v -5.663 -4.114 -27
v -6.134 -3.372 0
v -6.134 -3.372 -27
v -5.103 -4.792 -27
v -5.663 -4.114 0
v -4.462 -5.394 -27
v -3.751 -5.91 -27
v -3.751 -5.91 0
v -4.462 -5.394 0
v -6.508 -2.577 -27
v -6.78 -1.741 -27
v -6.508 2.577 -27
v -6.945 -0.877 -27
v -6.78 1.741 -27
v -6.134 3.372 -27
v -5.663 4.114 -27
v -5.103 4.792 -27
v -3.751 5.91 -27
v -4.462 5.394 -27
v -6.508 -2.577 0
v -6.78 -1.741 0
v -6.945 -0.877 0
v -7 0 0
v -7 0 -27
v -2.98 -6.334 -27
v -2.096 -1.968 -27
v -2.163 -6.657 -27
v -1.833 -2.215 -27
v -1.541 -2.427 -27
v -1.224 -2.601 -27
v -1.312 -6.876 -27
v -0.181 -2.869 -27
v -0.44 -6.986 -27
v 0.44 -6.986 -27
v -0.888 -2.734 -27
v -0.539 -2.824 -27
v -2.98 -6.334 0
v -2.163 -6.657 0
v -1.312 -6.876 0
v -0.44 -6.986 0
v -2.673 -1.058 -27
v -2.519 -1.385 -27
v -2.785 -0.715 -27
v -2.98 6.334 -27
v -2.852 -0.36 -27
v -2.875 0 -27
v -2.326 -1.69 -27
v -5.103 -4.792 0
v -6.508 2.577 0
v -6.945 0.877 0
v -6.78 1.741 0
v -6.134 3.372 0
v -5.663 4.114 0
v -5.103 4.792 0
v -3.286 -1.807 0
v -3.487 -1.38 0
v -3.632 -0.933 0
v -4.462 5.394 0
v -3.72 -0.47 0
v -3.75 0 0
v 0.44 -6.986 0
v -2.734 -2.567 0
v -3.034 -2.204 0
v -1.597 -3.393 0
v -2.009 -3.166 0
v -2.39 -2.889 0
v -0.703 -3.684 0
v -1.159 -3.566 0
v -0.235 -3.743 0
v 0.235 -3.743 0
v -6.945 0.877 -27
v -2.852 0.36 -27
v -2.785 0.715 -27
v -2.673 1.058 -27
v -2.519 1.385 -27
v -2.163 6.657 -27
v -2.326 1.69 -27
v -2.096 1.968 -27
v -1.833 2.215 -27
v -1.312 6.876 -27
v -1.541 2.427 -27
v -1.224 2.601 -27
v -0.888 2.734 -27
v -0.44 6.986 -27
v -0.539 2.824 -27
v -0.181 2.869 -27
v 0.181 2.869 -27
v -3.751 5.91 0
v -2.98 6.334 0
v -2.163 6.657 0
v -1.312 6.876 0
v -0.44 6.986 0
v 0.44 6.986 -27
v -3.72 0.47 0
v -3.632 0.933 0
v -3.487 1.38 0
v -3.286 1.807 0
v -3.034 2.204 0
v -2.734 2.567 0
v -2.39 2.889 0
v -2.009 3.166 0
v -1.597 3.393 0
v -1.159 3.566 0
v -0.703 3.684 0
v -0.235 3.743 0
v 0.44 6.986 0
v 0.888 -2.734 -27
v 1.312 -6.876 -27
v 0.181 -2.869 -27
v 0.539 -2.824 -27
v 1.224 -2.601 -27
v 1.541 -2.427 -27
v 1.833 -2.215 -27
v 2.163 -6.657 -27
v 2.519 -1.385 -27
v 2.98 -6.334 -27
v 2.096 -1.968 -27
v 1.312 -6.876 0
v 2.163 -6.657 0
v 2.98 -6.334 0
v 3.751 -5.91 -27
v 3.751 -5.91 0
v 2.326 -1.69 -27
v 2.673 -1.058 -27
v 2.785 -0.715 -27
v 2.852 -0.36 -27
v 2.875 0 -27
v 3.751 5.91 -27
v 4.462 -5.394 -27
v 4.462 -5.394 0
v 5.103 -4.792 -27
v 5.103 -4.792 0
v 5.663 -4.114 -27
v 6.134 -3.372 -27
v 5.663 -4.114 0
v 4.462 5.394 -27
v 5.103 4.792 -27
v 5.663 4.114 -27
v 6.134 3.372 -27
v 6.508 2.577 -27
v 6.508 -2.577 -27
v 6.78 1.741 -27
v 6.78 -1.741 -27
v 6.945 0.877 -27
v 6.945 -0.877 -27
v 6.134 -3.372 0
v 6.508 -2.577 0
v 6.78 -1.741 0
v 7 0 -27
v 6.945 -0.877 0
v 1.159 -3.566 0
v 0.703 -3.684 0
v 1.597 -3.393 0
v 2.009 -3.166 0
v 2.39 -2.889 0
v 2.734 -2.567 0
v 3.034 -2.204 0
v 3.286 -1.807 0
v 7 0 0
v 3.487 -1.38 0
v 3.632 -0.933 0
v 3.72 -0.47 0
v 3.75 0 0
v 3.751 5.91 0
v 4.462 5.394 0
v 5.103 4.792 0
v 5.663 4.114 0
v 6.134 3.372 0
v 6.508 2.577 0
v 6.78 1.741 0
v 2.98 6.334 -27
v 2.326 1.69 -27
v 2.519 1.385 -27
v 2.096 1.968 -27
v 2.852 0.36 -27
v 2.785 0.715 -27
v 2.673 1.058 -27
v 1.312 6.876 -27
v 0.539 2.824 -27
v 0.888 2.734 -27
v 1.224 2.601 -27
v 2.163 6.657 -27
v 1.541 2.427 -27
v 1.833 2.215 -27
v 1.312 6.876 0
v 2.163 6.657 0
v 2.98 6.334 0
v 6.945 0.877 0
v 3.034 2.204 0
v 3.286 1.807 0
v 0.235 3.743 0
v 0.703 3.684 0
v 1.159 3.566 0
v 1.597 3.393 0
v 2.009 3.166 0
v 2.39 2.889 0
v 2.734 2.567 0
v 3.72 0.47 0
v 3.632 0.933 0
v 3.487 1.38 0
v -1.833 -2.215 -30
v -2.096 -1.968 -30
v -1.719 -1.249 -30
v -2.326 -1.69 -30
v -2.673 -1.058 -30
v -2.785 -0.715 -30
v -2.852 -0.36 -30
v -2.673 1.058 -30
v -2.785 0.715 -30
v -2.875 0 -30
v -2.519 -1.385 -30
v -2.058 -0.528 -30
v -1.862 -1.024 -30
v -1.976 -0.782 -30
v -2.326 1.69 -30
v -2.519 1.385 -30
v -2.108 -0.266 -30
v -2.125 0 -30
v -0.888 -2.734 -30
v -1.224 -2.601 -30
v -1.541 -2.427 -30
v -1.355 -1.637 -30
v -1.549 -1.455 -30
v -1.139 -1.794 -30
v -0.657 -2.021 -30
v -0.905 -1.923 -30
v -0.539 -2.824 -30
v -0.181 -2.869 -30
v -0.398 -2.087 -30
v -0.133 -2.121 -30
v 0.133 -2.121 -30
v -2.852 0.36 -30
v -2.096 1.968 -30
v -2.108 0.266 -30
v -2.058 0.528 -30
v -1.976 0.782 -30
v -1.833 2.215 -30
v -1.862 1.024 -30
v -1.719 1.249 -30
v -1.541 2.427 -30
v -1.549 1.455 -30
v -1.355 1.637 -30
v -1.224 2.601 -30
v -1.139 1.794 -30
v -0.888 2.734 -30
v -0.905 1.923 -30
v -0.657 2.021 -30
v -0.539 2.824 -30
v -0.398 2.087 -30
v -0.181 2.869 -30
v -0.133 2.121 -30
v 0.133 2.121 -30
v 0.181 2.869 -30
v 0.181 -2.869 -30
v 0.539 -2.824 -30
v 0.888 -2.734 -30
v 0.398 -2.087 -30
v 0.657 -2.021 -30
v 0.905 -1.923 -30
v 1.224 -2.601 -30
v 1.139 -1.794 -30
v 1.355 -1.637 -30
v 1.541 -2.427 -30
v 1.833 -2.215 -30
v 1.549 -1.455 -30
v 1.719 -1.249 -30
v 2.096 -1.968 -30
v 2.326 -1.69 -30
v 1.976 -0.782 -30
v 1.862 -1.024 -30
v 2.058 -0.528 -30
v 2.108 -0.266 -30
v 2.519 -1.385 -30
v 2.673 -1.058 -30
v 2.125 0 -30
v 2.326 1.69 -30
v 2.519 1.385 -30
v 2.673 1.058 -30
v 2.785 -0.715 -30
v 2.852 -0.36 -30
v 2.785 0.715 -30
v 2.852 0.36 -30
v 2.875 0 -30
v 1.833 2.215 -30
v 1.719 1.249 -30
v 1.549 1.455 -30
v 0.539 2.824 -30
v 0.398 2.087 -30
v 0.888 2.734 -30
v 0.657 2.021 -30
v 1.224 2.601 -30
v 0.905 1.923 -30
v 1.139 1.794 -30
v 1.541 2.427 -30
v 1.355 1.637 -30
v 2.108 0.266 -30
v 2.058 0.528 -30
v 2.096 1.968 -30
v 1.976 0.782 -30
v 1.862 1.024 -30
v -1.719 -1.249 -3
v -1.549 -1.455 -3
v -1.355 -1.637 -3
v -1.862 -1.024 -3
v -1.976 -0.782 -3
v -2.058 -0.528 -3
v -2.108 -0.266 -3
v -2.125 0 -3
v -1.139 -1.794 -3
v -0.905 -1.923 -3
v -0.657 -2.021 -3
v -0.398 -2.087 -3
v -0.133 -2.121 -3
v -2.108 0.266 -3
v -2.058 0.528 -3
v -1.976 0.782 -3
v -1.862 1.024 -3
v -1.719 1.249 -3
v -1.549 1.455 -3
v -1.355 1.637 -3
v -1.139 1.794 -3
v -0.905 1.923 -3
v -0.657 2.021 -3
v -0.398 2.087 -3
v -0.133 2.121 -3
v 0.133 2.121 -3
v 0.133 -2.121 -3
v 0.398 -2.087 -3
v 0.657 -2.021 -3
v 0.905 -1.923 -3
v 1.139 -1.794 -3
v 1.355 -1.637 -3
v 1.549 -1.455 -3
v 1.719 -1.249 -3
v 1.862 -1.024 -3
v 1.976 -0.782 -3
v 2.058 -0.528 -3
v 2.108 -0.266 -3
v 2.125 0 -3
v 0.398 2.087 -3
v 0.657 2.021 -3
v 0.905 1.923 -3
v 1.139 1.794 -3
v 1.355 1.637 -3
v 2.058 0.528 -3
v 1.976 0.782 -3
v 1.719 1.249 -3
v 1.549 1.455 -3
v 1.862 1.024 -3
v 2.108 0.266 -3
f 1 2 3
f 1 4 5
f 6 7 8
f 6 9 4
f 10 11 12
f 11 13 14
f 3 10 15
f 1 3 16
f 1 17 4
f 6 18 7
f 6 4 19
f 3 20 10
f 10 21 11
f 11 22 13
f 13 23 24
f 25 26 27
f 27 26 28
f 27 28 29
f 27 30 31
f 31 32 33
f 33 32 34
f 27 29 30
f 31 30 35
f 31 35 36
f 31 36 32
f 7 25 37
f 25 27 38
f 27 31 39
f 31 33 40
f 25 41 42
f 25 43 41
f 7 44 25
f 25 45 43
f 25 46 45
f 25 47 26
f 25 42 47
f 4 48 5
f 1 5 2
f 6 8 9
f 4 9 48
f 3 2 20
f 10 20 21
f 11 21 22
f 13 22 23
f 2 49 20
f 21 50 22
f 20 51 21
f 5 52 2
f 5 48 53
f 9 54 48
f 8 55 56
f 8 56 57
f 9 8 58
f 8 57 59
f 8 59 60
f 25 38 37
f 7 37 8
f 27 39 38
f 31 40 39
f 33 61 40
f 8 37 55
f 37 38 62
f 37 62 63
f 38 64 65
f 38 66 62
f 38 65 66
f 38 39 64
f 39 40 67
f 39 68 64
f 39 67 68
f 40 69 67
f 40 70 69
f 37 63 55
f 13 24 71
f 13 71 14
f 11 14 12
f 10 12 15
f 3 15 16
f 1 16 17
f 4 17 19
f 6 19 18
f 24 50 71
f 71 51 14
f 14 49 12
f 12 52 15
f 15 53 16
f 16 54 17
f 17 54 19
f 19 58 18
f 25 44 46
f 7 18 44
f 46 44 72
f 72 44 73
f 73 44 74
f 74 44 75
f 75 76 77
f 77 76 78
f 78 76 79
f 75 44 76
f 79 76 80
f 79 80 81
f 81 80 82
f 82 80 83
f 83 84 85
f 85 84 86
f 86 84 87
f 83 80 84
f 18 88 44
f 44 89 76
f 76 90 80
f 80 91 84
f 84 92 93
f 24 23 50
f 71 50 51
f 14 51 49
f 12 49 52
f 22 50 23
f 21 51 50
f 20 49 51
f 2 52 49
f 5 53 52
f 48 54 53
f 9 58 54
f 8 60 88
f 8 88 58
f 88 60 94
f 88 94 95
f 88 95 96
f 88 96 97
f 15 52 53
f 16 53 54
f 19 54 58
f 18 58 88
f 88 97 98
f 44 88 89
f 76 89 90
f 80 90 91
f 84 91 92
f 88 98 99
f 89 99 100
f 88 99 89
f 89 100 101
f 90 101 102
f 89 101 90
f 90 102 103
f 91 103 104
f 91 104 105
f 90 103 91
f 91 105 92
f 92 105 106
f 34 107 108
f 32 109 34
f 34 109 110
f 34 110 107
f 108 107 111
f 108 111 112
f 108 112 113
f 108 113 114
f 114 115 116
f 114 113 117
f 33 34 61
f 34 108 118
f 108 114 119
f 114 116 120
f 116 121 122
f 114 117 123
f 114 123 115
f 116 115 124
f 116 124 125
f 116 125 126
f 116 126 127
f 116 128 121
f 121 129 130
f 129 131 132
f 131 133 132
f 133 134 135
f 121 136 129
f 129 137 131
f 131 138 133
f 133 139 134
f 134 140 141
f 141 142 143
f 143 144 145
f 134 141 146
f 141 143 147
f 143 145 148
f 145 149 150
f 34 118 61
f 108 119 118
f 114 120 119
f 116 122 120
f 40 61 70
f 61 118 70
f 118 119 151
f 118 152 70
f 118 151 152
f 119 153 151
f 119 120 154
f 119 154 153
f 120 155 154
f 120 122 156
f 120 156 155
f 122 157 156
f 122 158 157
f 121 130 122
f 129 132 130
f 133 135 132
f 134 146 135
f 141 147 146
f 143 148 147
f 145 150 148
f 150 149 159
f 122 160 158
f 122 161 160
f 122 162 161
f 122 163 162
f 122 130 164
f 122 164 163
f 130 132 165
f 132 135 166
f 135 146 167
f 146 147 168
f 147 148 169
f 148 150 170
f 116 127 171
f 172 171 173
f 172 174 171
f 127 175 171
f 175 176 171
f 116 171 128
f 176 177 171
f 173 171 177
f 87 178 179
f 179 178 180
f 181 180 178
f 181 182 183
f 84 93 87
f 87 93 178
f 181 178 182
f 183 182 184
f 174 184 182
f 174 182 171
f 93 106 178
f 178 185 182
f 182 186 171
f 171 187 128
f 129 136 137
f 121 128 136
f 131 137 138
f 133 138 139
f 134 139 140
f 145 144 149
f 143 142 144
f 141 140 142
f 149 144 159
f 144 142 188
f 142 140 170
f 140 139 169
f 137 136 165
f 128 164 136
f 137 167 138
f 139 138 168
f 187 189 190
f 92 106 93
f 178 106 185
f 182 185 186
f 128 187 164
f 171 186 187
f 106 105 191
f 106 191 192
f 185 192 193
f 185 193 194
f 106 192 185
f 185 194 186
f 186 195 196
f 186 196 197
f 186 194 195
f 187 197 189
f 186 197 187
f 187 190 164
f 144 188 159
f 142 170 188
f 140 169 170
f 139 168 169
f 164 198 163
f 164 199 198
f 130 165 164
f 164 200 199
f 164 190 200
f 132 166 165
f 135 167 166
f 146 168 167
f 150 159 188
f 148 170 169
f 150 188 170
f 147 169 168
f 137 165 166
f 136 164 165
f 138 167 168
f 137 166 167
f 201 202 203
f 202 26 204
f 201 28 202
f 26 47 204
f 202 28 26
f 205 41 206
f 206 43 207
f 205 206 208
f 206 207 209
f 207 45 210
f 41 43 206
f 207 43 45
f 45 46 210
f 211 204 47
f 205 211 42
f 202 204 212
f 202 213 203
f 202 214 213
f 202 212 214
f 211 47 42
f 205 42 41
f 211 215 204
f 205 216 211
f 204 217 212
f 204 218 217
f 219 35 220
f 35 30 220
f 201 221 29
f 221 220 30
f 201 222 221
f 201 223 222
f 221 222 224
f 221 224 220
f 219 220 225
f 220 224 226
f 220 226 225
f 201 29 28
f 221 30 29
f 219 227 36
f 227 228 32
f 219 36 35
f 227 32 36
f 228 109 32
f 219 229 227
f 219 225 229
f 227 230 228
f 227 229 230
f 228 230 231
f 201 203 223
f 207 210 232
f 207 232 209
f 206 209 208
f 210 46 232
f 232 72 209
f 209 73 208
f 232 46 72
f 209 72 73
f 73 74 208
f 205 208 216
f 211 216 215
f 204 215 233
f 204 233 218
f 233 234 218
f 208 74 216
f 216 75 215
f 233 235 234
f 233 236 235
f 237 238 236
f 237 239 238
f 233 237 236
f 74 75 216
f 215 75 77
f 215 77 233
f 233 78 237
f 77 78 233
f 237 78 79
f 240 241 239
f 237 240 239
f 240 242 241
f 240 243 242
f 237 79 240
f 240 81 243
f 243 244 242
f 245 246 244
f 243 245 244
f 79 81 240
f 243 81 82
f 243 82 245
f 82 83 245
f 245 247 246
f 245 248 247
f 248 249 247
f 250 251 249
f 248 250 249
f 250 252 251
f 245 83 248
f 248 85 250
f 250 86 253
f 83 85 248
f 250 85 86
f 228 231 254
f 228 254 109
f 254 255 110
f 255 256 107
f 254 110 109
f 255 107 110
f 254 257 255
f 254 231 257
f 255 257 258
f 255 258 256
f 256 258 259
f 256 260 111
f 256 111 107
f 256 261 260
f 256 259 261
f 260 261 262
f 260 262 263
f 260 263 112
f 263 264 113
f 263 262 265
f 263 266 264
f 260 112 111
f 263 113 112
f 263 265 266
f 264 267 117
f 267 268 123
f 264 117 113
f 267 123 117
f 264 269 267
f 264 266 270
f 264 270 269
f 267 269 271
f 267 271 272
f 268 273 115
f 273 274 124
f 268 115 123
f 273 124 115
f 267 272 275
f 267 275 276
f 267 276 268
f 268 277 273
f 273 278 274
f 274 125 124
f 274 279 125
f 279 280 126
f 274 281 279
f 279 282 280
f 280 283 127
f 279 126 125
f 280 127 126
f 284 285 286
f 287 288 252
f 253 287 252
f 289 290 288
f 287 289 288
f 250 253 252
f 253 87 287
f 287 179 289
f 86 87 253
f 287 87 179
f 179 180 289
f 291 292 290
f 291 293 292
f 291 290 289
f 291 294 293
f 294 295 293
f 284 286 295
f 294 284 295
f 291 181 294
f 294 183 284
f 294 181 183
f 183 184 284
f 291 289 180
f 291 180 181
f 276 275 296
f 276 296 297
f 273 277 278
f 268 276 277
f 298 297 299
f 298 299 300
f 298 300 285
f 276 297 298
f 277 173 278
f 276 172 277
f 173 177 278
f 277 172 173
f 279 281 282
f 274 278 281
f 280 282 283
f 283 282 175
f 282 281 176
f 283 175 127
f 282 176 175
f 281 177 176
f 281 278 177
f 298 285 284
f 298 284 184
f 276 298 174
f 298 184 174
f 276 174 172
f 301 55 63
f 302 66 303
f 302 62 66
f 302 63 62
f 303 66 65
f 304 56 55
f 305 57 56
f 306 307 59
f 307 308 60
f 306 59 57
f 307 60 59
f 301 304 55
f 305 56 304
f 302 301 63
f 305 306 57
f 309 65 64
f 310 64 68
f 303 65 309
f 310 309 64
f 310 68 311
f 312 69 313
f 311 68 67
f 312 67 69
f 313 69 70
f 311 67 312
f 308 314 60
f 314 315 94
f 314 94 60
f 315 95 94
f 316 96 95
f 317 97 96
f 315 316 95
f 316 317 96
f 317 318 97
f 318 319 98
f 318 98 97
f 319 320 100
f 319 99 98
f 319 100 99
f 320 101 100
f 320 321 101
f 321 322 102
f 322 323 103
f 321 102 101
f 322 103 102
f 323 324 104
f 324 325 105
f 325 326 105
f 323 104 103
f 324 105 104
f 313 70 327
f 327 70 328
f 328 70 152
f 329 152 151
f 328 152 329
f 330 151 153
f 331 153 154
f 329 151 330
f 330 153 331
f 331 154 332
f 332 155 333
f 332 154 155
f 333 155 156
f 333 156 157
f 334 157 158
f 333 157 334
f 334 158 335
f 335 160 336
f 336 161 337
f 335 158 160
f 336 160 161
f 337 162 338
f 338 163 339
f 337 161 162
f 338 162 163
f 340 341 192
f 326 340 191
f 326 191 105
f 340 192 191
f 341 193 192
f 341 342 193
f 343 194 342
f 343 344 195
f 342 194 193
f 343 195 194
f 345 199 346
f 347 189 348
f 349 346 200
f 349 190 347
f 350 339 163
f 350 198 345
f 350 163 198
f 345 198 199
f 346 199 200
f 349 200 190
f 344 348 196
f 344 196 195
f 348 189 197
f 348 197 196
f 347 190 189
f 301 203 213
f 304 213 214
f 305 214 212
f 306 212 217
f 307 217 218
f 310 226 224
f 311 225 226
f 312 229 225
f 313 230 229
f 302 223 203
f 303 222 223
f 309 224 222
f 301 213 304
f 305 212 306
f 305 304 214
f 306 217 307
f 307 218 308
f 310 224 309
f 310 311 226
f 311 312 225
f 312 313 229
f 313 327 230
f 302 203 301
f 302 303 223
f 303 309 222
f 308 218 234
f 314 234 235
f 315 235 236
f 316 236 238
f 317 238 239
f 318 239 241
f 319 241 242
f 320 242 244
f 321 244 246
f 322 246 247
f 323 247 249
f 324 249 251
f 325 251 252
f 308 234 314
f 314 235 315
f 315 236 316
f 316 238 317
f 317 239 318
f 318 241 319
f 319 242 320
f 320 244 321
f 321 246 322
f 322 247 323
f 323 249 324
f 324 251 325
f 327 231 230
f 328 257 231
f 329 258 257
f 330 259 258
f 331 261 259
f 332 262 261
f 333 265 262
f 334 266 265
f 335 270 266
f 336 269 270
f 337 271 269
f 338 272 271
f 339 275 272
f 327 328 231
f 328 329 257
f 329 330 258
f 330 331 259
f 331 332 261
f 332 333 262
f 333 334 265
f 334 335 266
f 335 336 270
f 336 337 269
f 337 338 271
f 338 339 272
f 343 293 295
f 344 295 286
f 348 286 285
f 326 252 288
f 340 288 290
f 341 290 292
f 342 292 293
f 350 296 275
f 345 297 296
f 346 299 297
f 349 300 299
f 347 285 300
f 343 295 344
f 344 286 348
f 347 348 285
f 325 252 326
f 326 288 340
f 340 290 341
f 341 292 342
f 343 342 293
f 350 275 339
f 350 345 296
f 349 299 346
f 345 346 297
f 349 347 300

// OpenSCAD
$fn = 50;

difference() {
	union() {
		translate(v = [0, 0, -27.0]) {
			cylinder(h = 27, r = 7.0);
		}
		#translate(v = [0, 0, -30.0]) {
			cylinder(h = 30, r = 2.875);
		}
	}
	union() {
		translate(v = [0, 0, 0]) {
			rotate(a = [0, 0, 0]) {
				difference() {
					union() {
						translate(v = [0, 0, -30.0]) {
							cylinder(h = 30, r = 2.0);
						}
						translate(v = [0, 0, -3]) {
							cylinder(h = 3, r1 = 2.125, r2 = 3.75);
						}
						translate(v = [0, 0, -30.0]) {
							cylinder(h = 30, r = 2.125);
						}
						translate(v = [0, 0, -30.0]) {
							cylinder(h = 30, r = 2.0);
						}
					}
					union();
				}
			}
		}
	}
}
